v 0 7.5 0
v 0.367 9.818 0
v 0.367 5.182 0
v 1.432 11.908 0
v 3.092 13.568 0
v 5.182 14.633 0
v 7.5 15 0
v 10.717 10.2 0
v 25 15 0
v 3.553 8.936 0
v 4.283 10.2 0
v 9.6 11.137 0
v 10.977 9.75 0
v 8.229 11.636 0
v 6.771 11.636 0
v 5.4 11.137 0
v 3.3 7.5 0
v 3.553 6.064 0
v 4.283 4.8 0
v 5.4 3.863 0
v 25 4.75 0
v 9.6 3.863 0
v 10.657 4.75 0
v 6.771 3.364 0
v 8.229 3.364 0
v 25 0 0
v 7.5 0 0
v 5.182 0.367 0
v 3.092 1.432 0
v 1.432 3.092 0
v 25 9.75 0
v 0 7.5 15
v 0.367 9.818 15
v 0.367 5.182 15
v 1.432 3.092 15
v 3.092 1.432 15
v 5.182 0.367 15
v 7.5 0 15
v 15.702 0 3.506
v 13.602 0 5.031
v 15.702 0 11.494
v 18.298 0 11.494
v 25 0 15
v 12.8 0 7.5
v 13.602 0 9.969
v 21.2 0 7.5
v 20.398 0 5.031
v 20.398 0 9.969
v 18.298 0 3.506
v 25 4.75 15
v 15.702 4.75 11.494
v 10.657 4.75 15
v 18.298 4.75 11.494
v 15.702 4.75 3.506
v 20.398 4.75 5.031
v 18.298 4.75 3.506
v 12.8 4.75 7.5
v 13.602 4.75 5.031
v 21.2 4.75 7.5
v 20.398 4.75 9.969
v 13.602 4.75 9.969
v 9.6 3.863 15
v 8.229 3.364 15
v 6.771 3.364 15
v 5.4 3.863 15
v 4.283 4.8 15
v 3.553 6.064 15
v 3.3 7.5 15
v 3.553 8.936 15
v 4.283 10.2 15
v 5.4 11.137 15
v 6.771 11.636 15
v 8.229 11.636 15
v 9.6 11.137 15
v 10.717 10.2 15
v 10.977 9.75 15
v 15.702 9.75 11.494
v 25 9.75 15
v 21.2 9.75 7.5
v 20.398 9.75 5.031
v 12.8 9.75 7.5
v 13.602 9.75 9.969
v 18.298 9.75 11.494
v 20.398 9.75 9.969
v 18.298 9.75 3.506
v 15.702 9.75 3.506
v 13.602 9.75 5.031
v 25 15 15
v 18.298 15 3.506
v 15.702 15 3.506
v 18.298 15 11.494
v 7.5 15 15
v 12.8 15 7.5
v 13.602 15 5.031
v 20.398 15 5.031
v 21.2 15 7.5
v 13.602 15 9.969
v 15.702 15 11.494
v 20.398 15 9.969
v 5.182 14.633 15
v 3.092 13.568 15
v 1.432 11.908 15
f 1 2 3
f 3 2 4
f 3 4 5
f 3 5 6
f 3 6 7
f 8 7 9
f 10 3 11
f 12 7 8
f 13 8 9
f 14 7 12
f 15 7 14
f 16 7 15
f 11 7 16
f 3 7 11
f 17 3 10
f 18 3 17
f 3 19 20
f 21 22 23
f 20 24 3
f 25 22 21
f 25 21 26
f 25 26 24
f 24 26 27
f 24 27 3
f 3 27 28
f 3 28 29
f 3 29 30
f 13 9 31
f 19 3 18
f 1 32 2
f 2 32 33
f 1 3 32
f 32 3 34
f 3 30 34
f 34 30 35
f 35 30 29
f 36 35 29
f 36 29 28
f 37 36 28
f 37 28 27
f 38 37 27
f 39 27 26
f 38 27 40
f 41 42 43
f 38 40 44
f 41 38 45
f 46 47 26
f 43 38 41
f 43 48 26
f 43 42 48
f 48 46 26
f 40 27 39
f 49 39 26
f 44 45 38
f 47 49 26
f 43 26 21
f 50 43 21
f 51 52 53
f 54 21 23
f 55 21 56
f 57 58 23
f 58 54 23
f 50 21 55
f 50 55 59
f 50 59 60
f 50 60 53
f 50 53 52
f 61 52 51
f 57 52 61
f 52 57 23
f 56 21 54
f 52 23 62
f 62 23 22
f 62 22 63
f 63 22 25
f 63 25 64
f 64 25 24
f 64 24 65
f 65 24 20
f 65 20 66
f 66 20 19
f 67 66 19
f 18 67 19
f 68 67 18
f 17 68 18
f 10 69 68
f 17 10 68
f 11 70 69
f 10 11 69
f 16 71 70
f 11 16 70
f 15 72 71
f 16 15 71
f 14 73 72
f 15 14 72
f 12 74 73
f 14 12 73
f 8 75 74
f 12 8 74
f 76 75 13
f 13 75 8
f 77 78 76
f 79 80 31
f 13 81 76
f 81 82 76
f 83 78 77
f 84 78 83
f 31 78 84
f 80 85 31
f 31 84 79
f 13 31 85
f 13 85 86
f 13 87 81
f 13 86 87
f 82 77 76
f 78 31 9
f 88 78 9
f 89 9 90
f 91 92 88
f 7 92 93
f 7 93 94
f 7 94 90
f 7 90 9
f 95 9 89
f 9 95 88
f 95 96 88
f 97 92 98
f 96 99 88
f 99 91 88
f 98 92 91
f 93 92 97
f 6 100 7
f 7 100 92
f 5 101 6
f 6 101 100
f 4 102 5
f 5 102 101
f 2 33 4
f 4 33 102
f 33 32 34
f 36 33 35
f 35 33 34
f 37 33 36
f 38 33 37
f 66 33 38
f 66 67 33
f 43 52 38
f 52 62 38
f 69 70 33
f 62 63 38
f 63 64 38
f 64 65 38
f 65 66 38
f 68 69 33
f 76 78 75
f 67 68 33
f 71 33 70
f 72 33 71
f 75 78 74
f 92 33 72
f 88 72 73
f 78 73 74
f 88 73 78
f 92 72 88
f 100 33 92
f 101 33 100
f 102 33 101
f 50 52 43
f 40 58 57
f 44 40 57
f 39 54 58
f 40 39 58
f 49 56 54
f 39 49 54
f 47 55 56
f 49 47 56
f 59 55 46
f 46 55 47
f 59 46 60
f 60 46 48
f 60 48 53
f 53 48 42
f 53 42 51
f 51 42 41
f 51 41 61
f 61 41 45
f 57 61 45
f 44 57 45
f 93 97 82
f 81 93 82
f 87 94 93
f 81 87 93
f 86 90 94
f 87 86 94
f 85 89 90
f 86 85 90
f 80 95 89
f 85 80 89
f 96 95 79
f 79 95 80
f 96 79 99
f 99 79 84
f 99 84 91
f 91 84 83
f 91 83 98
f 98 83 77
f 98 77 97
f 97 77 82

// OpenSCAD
// file: configuration-metric.scad
// PRUSA Mendel  
// Metric Configuration file
// GNU GPL v2
// Josef Průša
// josefprusa@me.com
// prusadjs.cz
// http://www.reprap.org/wiki/Prusa_Mendel
// http://github.com/prusajr/PrusaMendel

// CONFIGURATION FILE FOR METRIC VARIANT OF PRUSA MENDEL

// M8 rod diameter
m8_diameter = 8.4;

// M8 nut diameter diameter
// Used for $fn nut trick -> cylinder(h = 5, r=m8_nut_diameter, $fn=6, center=true);
m8_nut_diameter = 16.4;

// M4 rod/screw diameter
m4_diameter = 5;

// M4 nut diameter
// Used for $fn nut trick -> cylinder(h = 5, r=m4_nut_diameter, $fn=6, center=true);
m4_nut_diameter = 9;

// M3 rod/screw diameter
m3_diameter = 4.4;

// M3 nut diameter diameter
// Used for $fn nut trick -> cylinder(h = 5, r=m3_nut_diameter, $fn=6, center=true);
m3_nut_diameter = 7;

// Bushing holders diameter
bushing_diameter = 11;

//Motor shaft diameter
motor_shaft=5;

//Bushings
	//Size of rod on which it will slide
	bushing_rodsize = 8;
	
	//Size of whole bushings (diameter because the core is cylinder)
	bushing_outerDiameter = 16;
	
	//How long they are going to be
	bushing_lenght = 11;
	
	// TYPE Can generate three versions
	// 1 - regular old ones
	// 2 - helical ones
	// 3 - holders for brass or any other bought bushings
	bushing_type = 2;
// file: configuration.scad
// PRUSA Mendel  
// Configuration file
// GNU GPL v2
// Josef Průša
// josefprusa@me.com
// prusadjs.cz
// http://www.reprap.org/wiki/Prusa_Mendel
// http://github.com/prusajr/PrusaMendel

// PLESE SELECT ONE OF THE CONFIGURATION FILES
// BY UN-COMMENTING IT

// METRIC VERSION
include <configuration-metric.scad>

// IMPERIAL VERSION (TODO, just place holder)
// Spacexula will do it ;-)
// include <configuration-imperial.scad>

// MINI-HUXLEY VERSION (TODO, just place holder)
// include <configuration-huxley.scad>

// MEGA VERSION (TODO, just place holder)
// include <configuration-mega.scad>
// main file
// PRUSA Mendel  
// Bar clamp
// Used for joining 8mm rods
// GNU GPL v2
// Josef Průša
// josefprusa@me.com
// prusadjs.cz
// http://www.reprap.org/wiki/Prusa_Mendel
// http://github.com/prusajr/PrusaMendel

include <configuration.scad>

/**
 * @name Bar clamp
 * @category Printed
 * @using 2 m8nut
 * @using 2 m8washer
 */ 

module barclamp(){
outer_diameter = m8_diameter/2+3.3;

difference(){
	union(){
		
		translate([outer_diameter, outer_diameter, 0])cylinder(h =outer_diameter*2, r = outer_diameter, $fn = 20);
		translate([outer_diameter, 0, 0])cube([17.5,outer_diameter*2,outer_diameter*2]);
	}


	translate([9, outer_diameter/2+1, 0])cube([18,05,20]);
	translate([outer_diameter, outer_diameter, 0]) #cylinder(h =20, r = m8_diameter/2, $fn = 18);
	translate([17, 17, 7.5]) rotate([90, 0, 0]) #cylinder(h =20, r = m8_diameter/2, $fn = 10);
}
}
barclamp();
